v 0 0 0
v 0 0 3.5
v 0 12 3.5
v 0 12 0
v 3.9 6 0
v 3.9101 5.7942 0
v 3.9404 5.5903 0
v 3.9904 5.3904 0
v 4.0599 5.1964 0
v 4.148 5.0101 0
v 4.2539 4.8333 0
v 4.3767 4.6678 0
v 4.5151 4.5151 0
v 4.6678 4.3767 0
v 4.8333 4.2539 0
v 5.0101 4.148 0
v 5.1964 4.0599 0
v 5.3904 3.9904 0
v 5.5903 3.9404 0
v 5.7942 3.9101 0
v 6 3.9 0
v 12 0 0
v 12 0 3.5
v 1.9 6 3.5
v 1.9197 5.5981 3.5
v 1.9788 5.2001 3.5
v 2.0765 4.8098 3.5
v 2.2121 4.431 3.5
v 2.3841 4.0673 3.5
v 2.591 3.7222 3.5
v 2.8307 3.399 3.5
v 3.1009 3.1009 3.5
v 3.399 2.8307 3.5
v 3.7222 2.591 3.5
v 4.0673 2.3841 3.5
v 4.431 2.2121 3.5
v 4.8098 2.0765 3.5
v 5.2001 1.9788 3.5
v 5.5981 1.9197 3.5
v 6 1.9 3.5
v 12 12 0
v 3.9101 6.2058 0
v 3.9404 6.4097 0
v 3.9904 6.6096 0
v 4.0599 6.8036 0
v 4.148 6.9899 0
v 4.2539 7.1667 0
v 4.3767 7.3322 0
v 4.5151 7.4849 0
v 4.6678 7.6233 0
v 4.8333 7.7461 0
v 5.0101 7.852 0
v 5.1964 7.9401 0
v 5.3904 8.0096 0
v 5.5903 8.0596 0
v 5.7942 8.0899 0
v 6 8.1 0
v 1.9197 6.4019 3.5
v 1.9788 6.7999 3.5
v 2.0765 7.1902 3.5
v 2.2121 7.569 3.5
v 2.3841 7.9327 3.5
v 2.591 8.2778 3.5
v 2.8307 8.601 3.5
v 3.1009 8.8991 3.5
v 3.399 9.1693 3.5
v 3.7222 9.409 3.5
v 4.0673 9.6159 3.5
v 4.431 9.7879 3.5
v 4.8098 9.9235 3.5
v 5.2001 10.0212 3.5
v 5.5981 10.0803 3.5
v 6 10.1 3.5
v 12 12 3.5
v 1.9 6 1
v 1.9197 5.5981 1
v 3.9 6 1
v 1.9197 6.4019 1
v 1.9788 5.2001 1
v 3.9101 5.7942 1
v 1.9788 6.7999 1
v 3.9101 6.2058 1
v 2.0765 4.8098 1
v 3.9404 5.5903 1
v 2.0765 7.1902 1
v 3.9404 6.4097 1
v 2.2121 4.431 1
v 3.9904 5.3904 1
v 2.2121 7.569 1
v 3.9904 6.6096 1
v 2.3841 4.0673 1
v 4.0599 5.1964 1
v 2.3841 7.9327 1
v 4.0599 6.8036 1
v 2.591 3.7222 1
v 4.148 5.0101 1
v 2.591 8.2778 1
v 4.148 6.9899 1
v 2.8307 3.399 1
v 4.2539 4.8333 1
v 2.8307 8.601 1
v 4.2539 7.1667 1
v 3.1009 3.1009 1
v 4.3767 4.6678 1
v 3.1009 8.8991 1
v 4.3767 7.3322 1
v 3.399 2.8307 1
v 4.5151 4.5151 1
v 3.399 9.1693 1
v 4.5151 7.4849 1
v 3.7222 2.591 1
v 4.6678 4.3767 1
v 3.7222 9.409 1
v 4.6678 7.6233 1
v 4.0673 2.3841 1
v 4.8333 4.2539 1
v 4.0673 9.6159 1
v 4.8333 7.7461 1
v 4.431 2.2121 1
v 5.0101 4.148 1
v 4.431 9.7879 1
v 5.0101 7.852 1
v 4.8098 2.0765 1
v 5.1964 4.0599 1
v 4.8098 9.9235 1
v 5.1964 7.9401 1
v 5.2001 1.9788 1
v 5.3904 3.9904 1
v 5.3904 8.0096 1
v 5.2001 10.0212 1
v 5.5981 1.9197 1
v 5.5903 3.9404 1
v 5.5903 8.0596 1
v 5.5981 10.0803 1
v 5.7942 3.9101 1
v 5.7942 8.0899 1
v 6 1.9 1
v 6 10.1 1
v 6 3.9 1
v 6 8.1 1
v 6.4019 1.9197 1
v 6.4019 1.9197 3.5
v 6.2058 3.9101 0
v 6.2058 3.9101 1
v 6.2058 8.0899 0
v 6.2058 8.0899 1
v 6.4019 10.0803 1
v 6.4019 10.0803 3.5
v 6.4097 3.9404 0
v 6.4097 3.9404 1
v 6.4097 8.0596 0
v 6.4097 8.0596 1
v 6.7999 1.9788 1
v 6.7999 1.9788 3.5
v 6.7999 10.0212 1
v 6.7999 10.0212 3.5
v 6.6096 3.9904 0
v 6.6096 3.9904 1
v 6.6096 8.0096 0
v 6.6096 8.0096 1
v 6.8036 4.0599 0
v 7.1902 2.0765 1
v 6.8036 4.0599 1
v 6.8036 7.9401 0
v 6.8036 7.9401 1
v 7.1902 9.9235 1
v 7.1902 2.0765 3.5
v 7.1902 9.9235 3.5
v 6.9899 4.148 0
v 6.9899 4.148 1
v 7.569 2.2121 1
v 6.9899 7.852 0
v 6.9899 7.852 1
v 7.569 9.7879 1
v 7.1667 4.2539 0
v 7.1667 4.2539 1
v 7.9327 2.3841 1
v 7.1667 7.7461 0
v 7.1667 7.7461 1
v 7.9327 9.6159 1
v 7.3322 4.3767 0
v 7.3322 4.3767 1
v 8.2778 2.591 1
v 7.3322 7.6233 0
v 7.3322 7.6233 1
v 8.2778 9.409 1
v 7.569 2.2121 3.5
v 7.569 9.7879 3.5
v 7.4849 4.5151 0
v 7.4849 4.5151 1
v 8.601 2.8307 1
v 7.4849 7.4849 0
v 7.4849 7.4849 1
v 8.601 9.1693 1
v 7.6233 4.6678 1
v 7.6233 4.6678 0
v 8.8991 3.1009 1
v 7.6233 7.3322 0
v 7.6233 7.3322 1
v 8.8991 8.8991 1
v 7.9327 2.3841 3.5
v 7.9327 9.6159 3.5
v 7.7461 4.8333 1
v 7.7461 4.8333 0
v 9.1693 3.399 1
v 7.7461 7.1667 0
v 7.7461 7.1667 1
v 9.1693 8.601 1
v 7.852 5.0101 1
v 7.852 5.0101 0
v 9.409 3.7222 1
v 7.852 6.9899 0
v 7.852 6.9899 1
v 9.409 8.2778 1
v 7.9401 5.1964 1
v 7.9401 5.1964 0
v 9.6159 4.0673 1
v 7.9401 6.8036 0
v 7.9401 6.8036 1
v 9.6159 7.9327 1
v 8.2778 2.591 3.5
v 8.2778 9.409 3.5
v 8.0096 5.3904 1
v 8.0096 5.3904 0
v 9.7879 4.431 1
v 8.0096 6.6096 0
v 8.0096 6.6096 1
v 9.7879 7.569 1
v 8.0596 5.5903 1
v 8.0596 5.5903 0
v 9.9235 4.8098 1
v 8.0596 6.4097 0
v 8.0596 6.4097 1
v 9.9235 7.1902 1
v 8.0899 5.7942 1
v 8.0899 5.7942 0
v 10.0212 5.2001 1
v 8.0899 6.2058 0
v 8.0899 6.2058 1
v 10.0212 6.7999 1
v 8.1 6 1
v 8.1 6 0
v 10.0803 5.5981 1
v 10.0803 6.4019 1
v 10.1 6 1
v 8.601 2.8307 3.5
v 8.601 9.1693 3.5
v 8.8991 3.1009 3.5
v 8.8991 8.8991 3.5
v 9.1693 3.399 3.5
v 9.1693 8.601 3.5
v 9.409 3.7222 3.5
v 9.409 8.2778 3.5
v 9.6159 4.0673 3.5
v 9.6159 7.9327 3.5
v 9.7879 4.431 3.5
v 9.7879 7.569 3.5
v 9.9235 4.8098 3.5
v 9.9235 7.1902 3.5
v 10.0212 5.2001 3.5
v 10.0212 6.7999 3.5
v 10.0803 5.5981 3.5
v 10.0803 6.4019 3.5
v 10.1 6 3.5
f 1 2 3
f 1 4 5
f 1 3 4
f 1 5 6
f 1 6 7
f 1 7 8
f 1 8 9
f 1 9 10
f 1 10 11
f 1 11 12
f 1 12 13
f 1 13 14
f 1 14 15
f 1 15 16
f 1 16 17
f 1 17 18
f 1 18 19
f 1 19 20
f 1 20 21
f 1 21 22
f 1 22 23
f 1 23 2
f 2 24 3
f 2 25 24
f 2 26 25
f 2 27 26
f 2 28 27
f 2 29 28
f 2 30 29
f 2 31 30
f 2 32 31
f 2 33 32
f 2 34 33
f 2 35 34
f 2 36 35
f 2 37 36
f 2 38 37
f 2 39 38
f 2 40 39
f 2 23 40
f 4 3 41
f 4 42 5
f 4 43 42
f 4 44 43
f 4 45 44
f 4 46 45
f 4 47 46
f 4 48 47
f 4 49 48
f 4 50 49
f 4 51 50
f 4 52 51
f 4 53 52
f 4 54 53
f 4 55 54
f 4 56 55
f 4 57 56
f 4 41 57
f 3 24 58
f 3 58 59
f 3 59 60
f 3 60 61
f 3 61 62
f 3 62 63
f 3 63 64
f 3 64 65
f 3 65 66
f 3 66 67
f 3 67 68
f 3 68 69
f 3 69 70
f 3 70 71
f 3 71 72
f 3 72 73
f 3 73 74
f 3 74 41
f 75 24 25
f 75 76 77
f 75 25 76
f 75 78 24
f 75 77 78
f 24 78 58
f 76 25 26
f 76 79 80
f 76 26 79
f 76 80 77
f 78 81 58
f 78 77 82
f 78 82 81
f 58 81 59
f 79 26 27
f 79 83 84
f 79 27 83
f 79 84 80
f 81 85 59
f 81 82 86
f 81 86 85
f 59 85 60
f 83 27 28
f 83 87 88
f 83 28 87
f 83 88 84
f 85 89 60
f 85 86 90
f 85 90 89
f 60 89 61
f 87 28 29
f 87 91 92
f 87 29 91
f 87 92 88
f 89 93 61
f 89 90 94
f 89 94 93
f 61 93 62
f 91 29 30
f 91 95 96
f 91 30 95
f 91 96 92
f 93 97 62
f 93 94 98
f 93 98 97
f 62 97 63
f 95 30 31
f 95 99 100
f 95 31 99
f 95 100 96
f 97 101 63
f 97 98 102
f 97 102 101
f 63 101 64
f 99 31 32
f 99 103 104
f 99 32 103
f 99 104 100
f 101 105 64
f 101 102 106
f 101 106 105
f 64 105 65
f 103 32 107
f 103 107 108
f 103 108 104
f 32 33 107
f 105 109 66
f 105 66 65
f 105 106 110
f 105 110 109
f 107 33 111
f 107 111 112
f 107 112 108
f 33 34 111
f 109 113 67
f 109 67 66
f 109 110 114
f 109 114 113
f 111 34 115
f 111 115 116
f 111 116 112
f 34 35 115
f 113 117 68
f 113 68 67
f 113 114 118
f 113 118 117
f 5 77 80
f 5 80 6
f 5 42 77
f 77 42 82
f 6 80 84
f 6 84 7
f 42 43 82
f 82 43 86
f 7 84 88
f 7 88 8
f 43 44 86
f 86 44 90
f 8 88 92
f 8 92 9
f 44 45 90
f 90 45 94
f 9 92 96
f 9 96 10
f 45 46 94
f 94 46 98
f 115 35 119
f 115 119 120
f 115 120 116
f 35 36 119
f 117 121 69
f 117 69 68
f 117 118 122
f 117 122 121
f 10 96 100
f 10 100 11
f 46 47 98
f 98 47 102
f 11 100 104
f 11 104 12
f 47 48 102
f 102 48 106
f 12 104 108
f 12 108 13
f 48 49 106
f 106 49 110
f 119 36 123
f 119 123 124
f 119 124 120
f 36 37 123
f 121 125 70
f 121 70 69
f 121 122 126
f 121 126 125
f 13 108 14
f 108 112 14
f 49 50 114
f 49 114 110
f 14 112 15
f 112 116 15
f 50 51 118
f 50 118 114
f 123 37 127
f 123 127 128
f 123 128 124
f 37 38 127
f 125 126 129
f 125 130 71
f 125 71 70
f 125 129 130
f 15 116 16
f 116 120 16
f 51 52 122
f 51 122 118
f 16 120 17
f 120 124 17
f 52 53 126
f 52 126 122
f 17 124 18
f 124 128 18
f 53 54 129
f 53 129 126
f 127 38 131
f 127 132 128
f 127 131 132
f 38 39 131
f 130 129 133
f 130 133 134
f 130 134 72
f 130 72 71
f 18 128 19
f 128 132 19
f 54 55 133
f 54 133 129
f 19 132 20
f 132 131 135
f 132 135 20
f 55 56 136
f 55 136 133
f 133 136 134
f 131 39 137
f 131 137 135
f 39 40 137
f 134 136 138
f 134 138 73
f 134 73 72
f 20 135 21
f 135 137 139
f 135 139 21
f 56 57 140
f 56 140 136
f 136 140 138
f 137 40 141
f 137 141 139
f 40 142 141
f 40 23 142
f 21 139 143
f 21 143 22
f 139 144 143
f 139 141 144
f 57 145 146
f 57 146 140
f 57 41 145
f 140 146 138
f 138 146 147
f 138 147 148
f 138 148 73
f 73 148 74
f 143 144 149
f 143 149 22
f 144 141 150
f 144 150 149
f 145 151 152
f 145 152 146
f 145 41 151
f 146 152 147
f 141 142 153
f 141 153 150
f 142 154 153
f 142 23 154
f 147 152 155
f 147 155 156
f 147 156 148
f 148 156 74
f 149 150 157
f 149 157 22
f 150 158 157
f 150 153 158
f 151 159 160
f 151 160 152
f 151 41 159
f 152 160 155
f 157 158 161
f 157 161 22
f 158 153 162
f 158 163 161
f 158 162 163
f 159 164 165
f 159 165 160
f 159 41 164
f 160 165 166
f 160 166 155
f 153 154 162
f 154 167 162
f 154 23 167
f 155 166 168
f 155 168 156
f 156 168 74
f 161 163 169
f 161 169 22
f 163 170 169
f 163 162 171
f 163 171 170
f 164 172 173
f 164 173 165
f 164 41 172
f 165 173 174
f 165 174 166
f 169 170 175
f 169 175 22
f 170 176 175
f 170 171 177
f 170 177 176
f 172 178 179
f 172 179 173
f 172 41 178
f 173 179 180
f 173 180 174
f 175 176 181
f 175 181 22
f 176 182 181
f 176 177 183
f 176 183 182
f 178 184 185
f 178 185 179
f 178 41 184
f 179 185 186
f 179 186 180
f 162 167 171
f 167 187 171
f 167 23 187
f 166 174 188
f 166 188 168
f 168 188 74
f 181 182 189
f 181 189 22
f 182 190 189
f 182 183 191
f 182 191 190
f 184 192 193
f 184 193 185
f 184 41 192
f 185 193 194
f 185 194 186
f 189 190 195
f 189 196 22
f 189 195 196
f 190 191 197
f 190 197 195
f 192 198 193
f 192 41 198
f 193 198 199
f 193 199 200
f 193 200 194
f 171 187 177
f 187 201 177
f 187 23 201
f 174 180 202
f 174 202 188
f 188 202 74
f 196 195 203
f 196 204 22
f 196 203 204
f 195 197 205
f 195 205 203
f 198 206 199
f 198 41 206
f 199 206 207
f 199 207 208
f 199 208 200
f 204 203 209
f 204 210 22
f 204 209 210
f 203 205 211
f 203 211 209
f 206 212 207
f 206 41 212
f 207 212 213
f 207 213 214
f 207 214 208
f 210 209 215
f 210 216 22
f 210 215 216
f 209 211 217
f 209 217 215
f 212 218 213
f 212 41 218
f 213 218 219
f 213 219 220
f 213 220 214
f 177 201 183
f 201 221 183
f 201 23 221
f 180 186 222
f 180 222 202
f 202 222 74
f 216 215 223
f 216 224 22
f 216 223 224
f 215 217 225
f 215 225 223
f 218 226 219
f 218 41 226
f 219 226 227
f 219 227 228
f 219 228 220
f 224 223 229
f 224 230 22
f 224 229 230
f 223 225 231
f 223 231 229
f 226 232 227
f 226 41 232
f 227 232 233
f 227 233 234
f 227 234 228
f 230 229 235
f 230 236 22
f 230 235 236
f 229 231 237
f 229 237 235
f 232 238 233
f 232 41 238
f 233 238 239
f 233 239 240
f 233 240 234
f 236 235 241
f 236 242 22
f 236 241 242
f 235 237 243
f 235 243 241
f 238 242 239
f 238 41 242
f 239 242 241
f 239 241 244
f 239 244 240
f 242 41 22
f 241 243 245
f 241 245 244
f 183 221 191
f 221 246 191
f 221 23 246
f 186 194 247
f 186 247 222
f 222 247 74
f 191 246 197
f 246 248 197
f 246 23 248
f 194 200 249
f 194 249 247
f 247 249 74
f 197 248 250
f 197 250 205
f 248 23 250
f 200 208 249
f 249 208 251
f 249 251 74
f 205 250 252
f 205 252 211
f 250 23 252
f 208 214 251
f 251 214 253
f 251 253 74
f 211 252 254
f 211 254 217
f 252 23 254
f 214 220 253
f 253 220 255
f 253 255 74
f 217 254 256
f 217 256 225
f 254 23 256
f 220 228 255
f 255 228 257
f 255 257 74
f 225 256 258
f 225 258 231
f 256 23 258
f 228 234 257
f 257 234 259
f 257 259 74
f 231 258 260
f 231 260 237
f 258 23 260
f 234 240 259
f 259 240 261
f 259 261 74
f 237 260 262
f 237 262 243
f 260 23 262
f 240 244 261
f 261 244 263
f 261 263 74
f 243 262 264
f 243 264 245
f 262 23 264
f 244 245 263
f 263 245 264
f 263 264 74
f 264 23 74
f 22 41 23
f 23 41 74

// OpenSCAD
// test for screw on cable holder
// 28.09.2025 Sebastian Weigl
 
// set the fregment sizes
$fn = $preview ? 48 : 64;

// vars
border=2.5;
clearence=0.5;

fir_box_width=12;
fir_box_depth=12;
fir_box_height=3.5;

/*
sec_box_width=144.5-(border+border);
sec_box_depth=147-(border+border);
sec_box_height=94.5-(border); */

difference() {
cube([fir_box_width,fir_box_depth,fir_box_height],false);
  translate([fir_box_width/2,fir_box_depth/2,fir_box_height]) {
    cylinder(h=5,r=4.1,center=true);
    cylinder(h=10,r=2.1,center=true);
  }
}
